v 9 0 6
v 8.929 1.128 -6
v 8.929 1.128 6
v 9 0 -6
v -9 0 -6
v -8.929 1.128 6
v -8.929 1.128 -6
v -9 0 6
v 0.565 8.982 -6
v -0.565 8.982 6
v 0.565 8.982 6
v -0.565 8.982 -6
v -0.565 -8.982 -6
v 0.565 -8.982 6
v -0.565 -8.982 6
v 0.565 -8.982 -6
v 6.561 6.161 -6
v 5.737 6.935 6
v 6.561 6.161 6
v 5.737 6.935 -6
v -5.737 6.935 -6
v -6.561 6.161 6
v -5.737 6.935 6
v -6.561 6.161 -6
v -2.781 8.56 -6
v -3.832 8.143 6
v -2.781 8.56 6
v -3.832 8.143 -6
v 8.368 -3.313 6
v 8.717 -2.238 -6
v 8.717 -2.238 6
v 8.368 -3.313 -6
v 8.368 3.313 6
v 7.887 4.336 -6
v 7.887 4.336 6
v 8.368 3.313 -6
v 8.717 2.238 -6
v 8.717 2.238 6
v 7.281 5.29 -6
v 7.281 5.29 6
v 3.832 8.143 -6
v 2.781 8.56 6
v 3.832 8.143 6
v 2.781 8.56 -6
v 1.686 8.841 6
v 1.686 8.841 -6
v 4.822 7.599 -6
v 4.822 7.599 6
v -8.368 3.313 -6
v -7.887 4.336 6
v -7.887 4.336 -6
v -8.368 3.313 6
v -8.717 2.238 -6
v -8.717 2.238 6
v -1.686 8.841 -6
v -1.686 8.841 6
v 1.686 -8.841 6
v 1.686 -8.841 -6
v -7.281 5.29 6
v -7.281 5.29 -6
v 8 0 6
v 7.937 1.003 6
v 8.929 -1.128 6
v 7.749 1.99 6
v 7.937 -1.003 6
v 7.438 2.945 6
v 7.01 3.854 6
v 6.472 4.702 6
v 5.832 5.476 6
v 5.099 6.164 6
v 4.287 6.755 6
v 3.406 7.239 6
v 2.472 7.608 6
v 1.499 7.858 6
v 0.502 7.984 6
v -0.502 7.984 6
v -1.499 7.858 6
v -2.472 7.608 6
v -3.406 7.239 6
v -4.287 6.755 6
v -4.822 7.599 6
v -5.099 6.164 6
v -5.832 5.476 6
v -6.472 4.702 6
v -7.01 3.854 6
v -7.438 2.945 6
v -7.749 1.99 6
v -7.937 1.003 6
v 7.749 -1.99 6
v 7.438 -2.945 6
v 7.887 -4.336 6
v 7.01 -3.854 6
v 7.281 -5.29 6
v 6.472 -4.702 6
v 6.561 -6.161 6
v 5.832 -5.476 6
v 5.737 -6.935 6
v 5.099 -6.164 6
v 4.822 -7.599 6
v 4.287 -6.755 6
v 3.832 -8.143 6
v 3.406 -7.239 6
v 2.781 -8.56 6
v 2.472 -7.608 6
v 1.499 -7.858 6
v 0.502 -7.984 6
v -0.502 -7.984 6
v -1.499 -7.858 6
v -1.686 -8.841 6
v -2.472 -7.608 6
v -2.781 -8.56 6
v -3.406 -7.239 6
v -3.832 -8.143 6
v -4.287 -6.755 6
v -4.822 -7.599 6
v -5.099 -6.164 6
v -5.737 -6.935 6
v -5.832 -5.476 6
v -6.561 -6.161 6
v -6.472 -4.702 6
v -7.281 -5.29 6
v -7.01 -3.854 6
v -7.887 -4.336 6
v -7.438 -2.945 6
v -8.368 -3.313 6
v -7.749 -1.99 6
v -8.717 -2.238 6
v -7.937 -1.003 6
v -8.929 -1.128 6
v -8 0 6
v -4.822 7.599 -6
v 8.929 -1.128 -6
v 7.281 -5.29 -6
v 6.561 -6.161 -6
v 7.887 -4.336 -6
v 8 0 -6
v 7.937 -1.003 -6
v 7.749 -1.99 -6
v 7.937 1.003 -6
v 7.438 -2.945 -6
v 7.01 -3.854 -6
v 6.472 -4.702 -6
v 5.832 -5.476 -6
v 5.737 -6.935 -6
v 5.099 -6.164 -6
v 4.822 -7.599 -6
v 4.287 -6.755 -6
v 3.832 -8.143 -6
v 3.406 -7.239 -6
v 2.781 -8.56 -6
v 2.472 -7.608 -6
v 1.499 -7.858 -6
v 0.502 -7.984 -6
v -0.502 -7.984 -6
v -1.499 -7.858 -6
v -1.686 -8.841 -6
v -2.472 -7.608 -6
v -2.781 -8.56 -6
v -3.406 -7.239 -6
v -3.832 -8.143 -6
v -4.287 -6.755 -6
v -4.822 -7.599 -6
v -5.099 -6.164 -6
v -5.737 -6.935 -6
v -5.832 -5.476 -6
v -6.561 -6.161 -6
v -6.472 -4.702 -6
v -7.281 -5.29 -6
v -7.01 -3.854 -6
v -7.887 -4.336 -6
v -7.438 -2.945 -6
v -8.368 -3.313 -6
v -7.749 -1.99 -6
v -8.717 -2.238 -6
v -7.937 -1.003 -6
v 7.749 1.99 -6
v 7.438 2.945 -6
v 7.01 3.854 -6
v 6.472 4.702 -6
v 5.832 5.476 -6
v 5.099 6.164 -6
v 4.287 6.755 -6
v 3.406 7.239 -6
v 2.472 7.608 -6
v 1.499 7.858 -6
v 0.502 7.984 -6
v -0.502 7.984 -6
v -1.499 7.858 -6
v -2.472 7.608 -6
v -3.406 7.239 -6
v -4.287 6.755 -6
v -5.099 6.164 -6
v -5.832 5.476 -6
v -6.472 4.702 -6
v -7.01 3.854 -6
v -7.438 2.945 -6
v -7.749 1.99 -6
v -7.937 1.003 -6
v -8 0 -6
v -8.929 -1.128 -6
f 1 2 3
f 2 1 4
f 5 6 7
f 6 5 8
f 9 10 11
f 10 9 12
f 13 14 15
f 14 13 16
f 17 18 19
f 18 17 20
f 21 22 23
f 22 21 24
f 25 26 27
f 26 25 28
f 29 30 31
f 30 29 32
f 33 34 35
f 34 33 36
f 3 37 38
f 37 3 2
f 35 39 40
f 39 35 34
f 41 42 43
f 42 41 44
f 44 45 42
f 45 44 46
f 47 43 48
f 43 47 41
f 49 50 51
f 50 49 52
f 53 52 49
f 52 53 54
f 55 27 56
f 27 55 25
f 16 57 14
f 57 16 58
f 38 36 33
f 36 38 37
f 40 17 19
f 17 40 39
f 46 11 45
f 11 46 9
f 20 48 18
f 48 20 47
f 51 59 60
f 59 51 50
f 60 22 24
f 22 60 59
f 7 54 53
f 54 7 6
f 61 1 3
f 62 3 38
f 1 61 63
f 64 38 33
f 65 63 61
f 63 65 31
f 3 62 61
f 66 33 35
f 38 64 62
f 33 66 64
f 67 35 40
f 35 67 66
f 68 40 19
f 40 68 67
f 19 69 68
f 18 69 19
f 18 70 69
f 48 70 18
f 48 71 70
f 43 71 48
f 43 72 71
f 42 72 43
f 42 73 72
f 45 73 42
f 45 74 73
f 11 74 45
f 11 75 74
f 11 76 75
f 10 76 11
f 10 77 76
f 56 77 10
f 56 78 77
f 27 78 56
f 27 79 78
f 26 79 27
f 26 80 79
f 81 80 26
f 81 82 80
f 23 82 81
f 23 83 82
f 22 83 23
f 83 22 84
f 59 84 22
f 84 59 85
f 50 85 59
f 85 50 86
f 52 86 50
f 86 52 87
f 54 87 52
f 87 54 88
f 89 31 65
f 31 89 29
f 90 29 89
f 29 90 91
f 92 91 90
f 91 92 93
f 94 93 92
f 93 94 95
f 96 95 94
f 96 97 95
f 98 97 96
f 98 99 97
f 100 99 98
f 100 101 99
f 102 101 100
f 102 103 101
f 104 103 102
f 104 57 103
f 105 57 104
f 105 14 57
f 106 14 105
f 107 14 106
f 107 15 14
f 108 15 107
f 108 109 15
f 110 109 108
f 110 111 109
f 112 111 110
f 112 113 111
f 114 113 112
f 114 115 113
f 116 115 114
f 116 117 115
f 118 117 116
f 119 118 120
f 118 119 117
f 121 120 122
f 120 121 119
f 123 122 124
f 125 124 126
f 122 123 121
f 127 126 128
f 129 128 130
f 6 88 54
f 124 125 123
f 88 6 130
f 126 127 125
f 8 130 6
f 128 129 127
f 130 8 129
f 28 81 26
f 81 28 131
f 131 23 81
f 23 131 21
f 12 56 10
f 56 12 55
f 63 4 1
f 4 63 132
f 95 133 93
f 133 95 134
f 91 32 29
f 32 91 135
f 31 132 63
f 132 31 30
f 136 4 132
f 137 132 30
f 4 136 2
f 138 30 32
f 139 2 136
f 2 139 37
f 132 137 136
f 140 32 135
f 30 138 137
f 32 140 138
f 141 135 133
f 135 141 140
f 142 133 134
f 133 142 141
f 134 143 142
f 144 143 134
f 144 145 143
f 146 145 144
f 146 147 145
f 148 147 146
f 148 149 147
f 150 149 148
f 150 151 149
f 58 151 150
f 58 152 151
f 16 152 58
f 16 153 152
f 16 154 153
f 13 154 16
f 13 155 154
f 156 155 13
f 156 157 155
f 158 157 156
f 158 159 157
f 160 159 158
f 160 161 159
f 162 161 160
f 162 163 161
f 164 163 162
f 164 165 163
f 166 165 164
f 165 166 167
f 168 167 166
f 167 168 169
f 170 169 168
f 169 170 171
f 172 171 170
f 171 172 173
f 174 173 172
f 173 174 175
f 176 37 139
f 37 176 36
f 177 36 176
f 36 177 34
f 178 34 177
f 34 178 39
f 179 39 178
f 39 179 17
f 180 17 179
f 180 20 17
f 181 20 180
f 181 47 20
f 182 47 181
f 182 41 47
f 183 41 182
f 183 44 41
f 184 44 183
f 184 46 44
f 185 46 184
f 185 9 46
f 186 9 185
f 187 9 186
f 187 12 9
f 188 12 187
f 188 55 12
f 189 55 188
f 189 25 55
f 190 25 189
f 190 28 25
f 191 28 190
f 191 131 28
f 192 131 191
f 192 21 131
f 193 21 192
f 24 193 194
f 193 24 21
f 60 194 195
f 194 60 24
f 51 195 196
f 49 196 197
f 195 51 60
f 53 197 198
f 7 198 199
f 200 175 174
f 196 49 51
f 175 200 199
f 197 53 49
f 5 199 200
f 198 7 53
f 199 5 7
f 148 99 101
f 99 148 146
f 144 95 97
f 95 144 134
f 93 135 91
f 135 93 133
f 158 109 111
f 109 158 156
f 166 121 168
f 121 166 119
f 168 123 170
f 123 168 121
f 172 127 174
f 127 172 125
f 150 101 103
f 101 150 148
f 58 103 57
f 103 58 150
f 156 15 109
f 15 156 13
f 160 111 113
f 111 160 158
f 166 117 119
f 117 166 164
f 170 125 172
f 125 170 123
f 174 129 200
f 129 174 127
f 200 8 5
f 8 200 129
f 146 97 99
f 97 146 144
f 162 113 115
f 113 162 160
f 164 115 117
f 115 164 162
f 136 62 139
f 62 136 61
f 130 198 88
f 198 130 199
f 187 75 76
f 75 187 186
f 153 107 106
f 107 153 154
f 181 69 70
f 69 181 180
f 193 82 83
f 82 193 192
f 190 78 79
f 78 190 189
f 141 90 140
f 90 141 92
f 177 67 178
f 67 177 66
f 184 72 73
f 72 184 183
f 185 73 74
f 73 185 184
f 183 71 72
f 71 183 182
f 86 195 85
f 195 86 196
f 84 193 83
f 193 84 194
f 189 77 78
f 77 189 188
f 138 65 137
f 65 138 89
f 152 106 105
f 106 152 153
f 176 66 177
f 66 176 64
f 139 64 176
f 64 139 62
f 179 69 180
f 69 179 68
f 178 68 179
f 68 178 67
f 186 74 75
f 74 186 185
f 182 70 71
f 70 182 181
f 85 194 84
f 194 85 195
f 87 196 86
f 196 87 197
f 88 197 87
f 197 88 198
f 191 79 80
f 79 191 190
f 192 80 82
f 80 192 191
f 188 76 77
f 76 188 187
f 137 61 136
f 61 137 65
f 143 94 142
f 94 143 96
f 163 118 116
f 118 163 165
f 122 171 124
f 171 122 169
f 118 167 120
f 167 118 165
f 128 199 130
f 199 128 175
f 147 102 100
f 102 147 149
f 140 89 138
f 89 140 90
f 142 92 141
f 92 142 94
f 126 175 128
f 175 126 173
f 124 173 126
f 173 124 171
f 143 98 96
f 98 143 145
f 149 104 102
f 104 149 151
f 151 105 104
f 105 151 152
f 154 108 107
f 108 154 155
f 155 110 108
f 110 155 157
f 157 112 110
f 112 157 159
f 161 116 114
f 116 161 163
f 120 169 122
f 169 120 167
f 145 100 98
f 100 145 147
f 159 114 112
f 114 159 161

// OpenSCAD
$fn = 50;


difference() {
	union() {
		translate(v = [0, 0, -6.0000000000]) {
			cylinder(h = 12, r = 9.0000000000);
		}
	}
	union() {
		translate(v = [0, 0, -100.0000000000]) {
			cylinder(h = 200, r = 8);
		}
	}
}
